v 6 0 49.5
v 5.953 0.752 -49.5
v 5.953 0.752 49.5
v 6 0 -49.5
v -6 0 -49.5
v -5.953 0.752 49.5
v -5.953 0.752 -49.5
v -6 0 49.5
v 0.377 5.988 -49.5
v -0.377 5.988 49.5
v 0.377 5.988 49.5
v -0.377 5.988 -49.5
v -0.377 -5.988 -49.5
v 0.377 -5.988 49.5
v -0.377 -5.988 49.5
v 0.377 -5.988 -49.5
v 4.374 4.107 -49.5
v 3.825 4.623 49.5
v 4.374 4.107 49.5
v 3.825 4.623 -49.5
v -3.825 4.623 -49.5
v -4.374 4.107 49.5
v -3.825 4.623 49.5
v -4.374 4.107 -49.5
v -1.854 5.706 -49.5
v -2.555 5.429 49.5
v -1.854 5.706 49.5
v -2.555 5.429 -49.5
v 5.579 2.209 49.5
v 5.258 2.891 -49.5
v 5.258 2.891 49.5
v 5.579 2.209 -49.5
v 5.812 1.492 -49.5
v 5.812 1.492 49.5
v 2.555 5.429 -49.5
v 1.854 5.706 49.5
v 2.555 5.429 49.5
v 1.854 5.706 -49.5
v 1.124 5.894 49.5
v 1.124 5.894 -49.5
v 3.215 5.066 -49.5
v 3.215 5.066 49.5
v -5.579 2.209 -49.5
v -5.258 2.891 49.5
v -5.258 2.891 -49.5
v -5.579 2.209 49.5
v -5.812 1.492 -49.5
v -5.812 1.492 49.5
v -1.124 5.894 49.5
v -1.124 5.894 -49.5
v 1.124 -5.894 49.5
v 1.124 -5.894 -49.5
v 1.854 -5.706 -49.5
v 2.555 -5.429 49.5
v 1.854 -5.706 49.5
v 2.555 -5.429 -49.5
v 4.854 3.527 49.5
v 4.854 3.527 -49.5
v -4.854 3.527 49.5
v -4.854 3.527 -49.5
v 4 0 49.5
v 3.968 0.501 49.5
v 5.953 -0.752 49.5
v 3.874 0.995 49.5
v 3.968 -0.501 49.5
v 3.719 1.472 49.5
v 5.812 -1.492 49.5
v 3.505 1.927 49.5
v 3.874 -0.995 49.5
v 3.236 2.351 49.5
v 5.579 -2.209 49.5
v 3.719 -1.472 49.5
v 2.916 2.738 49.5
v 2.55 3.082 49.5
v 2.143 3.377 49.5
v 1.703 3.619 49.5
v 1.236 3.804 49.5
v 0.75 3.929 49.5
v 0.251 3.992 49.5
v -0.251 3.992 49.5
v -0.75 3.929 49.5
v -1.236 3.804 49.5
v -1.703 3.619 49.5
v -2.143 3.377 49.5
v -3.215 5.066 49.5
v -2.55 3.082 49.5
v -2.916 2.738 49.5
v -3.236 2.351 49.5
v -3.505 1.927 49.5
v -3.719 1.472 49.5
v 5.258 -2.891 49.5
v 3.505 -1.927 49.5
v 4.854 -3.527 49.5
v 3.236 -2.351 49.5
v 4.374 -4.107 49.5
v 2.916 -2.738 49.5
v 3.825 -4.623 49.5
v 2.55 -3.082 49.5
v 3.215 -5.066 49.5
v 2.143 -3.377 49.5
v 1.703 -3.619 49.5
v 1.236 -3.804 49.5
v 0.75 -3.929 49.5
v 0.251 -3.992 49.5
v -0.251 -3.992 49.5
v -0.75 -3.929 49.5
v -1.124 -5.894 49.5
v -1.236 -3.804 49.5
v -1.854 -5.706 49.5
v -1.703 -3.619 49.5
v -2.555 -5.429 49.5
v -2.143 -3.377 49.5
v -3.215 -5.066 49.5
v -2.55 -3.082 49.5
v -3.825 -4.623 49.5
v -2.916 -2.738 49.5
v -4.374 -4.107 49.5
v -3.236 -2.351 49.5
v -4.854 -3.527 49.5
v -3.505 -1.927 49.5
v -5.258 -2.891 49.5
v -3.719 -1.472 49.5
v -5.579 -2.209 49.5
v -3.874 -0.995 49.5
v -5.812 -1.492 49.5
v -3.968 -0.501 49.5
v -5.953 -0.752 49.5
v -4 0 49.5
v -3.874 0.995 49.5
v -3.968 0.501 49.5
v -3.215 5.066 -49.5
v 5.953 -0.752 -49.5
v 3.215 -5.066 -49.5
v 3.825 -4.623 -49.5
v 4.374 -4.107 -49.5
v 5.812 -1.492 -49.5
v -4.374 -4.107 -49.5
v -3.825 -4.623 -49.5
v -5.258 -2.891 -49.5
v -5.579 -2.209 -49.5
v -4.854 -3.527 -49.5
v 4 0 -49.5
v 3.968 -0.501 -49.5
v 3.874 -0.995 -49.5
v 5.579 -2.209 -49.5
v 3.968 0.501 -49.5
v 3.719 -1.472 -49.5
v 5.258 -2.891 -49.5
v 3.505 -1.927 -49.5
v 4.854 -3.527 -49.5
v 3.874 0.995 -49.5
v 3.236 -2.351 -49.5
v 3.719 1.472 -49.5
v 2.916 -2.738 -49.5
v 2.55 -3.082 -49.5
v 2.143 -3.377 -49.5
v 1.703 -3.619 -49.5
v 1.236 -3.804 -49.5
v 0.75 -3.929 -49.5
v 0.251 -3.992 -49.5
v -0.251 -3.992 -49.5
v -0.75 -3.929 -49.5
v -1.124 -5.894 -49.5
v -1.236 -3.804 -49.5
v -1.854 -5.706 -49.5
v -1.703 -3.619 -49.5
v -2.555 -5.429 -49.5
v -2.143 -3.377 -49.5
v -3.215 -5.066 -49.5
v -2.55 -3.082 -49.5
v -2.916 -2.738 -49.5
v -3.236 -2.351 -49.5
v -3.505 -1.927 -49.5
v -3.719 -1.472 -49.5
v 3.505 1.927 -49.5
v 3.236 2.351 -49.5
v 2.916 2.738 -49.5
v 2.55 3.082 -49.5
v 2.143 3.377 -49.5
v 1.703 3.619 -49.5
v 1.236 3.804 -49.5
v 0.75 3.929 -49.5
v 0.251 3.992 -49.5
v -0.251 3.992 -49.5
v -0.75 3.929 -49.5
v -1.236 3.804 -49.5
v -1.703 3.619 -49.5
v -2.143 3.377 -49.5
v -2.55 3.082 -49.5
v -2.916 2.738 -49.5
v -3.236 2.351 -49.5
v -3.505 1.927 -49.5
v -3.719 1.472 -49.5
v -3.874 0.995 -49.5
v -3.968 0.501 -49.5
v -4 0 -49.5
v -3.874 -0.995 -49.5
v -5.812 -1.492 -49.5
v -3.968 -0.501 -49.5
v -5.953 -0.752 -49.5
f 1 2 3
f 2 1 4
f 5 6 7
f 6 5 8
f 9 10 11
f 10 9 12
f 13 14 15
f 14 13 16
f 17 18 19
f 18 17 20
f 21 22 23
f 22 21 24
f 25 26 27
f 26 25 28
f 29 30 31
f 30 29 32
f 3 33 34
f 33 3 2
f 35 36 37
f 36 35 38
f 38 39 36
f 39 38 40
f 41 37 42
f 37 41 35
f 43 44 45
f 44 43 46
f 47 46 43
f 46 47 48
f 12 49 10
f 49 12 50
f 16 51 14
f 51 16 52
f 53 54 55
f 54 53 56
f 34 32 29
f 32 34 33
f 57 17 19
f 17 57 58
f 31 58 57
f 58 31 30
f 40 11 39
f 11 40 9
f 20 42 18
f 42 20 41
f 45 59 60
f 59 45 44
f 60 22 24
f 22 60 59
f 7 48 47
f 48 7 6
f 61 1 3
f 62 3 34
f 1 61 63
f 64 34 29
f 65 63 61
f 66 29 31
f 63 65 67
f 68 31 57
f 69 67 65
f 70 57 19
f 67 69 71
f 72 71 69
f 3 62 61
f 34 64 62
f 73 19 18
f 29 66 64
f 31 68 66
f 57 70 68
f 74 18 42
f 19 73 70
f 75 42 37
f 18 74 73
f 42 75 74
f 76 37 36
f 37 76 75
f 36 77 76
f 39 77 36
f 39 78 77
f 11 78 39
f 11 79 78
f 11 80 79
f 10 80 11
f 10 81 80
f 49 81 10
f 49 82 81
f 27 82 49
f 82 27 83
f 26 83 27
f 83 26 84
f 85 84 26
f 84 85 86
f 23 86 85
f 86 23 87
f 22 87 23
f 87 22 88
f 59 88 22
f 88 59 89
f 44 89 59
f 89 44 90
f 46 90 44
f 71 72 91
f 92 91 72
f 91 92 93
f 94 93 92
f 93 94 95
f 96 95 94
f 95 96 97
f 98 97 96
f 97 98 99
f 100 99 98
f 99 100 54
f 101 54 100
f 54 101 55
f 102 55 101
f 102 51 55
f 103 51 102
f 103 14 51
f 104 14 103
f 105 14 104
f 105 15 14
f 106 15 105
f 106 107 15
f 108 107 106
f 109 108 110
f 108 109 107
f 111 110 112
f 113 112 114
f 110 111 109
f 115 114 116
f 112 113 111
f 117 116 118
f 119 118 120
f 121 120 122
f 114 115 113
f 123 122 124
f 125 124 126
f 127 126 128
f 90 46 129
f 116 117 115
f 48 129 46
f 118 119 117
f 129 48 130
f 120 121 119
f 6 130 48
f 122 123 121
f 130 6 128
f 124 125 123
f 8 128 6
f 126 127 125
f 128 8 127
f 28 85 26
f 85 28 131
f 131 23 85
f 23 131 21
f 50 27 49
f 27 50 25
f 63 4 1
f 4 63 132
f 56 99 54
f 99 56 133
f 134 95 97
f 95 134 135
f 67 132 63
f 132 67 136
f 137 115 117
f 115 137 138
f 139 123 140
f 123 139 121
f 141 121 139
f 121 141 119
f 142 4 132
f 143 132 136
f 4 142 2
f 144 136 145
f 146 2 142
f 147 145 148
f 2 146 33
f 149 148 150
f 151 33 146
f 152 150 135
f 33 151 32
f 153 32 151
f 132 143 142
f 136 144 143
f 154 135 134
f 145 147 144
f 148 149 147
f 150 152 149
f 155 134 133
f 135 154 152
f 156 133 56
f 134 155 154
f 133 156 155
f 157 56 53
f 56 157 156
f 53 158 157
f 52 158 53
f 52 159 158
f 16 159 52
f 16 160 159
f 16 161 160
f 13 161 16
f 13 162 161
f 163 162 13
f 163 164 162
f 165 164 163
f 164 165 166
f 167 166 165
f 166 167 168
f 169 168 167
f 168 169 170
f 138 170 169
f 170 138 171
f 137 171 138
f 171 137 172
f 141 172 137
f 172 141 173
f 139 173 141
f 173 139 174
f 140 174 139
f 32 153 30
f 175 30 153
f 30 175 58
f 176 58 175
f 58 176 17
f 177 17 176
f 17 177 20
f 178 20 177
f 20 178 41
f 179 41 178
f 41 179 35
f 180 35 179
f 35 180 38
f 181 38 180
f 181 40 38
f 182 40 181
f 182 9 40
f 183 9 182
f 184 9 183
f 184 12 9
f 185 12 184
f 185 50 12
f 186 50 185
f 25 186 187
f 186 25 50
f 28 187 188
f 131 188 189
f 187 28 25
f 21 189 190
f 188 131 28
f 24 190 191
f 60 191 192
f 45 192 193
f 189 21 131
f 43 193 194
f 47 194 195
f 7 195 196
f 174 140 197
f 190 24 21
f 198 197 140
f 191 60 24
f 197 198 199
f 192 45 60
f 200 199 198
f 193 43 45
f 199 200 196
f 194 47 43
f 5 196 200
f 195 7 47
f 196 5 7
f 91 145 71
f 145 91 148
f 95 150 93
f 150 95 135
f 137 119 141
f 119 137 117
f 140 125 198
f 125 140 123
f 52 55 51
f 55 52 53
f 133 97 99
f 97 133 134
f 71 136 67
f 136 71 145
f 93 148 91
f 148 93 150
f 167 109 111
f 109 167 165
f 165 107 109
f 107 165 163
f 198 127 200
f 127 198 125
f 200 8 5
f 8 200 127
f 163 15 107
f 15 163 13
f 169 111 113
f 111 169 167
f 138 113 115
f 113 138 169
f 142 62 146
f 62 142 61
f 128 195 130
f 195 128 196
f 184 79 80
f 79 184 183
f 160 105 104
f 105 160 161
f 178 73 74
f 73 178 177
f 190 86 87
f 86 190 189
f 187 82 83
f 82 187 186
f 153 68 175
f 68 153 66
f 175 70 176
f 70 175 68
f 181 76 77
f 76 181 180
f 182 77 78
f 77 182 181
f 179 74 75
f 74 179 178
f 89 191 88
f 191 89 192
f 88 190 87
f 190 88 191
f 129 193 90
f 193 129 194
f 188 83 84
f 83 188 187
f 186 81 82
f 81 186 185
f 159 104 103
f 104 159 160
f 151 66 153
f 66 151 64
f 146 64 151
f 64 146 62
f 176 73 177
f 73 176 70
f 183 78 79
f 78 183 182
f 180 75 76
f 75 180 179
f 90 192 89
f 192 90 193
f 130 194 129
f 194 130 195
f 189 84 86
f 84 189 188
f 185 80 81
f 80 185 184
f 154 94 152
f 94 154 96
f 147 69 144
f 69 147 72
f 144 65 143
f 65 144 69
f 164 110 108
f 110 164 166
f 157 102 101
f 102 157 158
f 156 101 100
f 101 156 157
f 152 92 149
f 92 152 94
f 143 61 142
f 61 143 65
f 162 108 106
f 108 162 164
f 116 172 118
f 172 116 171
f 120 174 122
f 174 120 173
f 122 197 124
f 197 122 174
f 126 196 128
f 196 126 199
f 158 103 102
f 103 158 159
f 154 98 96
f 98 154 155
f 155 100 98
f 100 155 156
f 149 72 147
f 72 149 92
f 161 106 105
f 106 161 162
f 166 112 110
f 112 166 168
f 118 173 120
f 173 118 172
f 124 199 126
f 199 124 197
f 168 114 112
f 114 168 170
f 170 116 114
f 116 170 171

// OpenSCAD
$fn = 50;


difference() {
	union() {
		translate(v = [0, 0, -49.5000000000]) {
			cylinder(h = 99, r = 6.0000000000);
		}
	}
	union() {
		translate(v = [0, 0, -100.0000000000]) {
			cylinder(h = 200, r = 4);
		}
	}
}
